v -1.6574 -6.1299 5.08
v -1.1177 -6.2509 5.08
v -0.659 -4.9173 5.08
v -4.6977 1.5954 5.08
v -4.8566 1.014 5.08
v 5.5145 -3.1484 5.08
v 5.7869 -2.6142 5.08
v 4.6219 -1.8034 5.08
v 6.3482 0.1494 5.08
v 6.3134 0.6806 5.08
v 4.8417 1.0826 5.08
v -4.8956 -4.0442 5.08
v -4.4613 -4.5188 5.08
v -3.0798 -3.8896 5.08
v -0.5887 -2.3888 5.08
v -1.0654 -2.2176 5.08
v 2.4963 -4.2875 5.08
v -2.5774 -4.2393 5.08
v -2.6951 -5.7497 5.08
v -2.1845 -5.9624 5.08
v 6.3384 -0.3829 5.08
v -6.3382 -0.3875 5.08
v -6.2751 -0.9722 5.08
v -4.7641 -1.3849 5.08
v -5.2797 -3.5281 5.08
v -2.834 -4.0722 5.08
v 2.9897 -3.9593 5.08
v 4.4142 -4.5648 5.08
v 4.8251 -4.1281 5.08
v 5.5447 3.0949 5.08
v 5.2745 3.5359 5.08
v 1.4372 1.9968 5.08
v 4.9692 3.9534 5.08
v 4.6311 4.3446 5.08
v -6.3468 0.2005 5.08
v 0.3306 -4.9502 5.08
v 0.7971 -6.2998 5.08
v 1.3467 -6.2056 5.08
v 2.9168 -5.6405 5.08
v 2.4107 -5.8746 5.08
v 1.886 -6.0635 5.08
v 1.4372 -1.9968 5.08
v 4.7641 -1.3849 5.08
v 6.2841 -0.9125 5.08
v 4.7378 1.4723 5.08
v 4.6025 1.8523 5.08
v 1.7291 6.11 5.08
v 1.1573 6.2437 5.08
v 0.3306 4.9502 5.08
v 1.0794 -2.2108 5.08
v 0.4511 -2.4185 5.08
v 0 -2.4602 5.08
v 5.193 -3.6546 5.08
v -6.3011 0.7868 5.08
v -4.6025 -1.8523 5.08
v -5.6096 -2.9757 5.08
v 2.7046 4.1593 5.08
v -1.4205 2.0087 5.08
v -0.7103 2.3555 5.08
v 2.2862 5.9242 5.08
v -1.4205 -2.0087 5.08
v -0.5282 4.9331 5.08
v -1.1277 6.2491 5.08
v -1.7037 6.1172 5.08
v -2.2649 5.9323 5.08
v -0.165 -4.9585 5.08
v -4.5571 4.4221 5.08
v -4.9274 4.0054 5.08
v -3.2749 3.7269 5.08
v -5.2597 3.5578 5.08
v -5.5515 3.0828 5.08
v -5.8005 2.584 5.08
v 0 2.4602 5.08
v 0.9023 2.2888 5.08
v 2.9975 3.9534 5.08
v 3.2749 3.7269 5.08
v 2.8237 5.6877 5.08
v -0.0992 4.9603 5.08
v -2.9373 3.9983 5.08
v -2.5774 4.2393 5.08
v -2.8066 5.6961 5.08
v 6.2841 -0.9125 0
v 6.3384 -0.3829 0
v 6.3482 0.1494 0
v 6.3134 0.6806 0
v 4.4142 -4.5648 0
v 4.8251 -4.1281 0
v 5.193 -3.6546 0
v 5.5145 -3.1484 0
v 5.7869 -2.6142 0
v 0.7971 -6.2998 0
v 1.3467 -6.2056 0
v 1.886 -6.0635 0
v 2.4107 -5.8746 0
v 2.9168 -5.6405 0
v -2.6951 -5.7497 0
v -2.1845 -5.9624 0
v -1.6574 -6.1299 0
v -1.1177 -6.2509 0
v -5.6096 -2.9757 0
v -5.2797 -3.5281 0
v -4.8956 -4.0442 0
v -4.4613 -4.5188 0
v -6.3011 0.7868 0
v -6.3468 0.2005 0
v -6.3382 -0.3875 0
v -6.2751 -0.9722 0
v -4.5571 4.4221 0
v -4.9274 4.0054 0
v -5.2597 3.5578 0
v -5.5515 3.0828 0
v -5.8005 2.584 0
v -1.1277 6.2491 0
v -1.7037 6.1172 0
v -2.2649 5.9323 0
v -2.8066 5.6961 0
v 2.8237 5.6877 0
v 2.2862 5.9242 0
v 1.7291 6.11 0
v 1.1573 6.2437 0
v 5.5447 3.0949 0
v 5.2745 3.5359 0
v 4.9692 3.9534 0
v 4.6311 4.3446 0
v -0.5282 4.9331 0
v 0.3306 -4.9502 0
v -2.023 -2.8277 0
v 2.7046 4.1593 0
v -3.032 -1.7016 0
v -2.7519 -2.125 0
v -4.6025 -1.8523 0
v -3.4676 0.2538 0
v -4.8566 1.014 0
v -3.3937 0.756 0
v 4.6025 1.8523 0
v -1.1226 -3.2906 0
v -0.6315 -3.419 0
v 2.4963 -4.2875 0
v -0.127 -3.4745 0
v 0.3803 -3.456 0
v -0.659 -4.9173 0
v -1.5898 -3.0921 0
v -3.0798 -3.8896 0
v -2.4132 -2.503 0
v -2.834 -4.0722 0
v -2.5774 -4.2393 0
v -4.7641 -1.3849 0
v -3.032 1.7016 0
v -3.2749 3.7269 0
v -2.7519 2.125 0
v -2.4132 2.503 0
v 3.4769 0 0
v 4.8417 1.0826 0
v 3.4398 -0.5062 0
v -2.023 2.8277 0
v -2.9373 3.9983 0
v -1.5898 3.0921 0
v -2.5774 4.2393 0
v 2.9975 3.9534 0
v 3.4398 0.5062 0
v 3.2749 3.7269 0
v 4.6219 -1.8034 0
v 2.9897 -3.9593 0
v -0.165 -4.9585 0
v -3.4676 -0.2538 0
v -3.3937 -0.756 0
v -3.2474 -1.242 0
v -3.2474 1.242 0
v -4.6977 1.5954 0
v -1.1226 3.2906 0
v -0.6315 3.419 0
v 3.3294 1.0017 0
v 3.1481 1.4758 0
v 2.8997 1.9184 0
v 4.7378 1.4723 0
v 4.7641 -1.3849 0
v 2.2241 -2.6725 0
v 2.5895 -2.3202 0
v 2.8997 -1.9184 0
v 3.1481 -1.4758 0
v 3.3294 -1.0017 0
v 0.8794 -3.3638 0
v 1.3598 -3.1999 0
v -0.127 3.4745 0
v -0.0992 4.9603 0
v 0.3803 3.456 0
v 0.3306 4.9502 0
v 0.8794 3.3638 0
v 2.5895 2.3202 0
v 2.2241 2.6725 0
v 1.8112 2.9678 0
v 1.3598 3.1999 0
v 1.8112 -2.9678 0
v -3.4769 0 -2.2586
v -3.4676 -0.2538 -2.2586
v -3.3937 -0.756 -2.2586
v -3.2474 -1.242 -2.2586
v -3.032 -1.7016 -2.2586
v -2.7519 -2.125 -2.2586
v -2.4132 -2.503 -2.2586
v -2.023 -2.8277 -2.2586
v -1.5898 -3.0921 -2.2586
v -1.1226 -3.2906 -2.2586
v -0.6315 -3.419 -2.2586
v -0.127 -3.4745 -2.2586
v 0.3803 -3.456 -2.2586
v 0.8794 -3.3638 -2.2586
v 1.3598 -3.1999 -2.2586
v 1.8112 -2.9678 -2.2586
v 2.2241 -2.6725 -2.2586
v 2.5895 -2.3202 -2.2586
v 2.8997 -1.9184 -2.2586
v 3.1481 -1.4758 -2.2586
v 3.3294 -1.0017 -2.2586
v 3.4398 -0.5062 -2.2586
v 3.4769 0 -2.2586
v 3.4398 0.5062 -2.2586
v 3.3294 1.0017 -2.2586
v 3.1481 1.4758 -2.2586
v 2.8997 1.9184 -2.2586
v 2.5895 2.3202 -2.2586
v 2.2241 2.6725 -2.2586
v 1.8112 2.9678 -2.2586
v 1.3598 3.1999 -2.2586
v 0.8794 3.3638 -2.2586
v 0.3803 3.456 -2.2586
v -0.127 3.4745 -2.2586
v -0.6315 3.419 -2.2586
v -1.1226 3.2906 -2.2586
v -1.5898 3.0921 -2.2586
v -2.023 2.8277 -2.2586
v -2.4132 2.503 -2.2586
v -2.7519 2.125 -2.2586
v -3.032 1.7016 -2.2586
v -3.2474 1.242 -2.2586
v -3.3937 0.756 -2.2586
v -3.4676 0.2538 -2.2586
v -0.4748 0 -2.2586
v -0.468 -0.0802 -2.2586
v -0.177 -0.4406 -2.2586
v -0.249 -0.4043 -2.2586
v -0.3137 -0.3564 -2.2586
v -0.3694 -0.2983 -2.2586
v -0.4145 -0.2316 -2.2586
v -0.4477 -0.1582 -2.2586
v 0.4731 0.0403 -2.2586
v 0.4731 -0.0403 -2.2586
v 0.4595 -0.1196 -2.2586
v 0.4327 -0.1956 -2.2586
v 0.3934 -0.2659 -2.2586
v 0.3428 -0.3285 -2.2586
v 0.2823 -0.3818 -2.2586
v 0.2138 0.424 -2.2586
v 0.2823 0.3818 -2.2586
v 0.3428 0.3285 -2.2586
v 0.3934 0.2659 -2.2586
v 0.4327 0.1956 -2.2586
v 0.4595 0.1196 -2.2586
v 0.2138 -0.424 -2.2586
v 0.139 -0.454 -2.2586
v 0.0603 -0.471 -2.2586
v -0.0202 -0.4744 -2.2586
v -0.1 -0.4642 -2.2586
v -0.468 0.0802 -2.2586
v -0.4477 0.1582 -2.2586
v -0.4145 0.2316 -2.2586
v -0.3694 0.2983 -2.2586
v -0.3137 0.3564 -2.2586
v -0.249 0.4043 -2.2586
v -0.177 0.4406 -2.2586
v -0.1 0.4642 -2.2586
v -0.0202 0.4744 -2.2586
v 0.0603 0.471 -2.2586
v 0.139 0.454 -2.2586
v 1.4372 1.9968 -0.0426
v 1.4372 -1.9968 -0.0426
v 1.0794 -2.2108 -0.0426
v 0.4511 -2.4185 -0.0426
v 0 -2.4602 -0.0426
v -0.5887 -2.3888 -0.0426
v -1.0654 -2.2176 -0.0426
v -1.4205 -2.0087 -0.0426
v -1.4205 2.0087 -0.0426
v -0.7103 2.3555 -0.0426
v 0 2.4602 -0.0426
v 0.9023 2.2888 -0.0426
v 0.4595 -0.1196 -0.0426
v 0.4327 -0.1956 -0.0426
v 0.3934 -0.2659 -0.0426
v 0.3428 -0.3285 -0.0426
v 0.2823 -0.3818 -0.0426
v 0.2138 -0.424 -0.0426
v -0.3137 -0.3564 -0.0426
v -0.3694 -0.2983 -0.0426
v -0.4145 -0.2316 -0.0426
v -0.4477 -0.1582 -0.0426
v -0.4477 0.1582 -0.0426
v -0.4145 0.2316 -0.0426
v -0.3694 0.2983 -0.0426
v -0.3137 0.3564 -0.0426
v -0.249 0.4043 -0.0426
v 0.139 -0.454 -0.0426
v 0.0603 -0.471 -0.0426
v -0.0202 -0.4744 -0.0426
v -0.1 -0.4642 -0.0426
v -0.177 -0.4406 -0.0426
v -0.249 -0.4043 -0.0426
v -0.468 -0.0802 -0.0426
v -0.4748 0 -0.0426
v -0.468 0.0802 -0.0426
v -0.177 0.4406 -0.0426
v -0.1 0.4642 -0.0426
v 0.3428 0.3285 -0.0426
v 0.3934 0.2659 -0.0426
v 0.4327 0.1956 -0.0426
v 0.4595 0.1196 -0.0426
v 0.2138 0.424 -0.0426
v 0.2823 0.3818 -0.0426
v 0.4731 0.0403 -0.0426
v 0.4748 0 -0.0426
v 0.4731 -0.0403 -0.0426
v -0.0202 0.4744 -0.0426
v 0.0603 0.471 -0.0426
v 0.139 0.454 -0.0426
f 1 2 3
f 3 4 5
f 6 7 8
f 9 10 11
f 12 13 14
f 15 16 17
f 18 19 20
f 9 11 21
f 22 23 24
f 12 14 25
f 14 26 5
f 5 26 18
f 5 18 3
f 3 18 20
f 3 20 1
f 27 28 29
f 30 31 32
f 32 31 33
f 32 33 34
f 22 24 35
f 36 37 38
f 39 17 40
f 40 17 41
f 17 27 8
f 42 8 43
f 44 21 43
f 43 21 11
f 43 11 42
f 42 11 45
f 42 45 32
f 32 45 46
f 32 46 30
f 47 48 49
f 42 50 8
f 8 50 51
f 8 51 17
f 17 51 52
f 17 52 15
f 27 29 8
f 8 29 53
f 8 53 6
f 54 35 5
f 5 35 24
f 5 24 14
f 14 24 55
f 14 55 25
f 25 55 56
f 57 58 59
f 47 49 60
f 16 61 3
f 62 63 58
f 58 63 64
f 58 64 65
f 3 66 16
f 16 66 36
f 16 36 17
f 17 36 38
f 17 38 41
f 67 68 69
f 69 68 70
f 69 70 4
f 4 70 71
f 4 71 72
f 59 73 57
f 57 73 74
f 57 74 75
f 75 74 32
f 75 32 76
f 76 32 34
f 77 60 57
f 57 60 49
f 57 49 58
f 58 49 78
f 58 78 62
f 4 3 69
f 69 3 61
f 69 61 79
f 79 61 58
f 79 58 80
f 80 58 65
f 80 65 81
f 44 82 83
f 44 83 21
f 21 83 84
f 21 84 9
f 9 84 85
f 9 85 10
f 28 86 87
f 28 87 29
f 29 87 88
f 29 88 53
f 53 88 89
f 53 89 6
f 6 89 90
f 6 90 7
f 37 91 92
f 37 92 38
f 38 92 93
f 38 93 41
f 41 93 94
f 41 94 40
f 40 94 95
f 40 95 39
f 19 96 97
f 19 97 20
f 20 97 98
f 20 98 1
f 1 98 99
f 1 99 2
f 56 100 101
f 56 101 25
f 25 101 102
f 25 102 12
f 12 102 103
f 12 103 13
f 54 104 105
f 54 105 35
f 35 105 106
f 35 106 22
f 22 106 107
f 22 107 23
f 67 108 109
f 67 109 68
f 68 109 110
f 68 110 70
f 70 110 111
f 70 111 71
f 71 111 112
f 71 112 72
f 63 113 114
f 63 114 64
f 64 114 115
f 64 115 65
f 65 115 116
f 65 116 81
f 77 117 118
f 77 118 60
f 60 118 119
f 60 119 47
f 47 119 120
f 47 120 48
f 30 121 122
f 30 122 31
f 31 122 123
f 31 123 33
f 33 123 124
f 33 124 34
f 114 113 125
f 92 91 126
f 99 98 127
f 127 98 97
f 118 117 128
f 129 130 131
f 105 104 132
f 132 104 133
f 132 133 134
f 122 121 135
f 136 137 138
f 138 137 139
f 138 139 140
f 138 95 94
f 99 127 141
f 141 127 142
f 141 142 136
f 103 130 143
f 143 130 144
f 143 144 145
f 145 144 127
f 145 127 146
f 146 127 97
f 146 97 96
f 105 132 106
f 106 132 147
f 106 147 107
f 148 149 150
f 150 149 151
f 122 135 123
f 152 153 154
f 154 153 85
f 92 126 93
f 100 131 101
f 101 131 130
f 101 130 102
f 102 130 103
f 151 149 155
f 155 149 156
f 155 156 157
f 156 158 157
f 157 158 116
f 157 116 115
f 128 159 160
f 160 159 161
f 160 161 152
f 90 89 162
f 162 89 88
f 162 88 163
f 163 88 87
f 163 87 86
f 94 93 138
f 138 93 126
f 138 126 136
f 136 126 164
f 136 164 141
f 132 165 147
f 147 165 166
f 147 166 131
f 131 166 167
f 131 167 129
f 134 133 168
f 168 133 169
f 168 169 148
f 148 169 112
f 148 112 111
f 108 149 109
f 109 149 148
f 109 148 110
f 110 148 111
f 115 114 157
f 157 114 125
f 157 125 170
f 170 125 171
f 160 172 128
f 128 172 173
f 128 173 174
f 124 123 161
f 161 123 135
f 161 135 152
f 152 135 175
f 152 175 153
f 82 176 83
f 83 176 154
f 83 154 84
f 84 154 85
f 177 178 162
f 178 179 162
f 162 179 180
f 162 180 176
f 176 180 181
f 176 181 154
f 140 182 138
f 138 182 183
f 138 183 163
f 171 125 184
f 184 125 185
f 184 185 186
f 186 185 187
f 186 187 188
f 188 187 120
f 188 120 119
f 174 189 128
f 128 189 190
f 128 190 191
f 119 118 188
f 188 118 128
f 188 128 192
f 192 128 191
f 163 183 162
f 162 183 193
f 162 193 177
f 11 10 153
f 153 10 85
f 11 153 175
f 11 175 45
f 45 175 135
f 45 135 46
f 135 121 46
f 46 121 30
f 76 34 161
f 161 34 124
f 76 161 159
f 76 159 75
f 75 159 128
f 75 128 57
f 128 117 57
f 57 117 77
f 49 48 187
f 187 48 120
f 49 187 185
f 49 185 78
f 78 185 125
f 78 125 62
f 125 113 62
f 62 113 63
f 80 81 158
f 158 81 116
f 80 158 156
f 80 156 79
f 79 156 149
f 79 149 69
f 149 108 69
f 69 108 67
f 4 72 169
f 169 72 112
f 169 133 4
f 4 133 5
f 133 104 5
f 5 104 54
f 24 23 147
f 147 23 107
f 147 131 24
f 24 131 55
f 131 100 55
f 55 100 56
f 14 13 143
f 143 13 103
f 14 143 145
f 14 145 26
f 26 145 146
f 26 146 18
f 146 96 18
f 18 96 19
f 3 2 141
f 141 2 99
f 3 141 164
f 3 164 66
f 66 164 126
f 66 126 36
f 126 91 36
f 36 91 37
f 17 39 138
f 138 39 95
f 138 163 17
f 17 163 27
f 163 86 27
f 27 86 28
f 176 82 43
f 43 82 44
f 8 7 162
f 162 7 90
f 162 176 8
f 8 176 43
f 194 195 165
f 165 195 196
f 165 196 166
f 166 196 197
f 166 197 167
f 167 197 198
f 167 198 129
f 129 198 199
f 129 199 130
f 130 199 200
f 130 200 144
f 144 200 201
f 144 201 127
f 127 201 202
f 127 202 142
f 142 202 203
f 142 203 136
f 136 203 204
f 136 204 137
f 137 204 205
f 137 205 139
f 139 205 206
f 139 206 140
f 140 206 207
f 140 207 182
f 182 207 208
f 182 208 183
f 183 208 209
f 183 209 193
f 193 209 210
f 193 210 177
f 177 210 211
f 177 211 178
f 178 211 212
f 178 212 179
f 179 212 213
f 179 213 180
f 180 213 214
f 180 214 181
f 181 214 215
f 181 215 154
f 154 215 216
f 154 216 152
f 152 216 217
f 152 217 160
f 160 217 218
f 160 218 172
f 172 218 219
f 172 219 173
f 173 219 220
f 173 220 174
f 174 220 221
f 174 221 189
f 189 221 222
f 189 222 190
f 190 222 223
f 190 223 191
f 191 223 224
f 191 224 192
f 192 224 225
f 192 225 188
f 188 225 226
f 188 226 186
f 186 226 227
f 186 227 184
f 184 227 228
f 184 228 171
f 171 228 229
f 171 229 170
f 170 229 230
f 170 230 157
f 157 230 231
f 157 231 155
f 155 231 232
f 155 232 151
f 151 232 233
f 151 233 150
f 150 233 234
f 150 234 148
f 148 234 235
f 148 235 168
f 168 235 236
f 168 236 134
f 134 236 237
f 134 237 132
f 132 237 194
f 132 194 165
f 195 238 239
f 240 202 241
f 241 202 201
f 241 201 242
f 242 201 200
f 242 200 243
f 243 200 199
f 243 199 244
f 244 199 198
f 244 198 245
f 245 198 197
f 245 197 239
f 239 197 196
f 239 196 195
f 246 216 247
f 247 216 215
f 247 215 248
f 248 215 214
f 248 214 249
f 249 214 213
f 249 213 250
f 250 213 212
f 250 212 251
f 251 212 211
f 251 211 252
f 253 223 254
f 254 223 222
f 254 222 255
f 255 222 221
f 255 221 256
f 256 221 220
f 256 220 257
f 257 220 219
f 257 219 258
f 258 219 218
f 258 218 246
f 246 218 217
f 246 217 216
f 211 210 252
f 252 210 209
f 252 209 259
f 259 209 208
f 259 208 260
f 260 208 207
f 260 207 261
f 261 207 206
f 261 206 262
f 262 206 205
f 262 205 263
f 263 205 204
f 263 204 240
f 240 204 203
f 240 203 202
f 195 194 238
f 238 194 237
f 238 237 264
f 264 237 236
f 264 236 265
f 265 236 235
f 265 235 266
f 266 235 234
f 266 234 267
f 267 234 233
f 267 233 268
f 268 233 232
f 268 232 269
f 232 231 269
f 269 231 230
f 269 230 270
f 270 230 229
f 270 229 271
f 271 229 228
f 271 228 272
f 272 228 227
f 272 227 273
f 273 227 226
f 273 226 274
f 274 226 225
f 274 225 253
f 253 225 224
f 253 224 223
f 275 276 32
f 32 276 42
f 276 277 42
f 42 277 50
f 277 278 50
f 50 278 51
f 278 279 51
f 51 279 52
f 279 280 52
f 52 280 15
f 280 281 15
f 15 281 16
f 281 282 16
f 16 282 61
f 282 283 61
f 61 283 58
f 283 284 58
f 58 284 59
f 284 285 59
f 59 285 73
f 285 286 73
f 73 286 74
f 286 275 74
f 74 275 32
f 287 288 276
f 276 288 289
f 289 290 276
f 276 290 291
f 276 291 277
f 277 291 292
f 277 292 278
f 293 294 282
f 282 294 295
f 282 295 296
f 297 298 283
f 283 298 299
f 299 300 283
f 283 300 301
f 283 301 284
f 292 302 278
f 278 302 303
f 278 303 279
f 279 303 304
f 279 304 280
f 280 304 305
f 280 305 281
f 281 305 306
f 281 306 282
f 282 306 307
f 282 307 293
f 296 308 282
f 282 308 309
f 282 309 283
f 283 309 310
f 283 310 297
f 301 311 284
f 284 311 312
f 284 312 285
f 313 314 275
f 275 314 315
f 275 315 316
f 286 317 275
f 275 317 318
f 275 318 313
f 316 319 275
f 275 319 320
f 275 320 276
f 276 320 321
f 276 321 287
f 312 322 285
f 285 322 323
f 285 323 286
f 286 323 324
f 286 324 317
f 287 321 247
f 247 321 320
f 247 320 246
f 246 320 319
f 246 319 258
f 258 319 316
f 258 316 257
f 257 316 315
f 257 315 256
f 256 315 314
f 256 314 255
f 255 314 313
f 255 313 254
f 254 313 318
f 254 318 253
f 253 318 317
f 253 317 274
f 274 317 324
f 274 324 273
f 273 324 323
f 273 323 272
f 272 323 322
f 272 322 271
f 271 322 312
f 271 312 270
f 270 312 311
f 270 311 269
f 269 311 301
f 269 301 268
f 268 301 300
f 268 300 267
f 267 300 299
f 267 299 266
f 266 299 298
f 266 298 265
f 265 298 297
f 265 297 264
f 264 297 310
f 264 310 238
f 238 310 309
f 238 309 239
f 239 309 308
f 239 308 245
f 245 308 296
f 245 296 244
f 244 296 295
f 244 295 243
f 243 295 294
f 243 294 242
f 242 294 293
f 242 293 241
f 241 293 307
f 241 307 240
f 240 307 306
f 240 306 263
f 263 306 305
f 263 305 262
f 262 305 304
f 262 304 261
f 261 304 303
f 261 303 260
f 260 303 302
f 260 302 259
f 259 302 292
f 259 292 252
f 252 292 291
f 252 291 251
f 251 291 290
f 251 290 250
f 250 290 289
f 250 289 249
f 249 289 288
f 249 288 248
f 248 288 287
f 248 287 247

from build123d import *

# Parameters (mm, degrees)
SKETCH1_R           = 6.35
BOSS_EXTRUDE1_DEPTH = 5.08
SKETCH2_R           = 0.804650072
CUT_EXTRUDE1_DEPTH  = 5.08
CUT_EXTRUDE4_DEPTH  = 5.08
SKETCH7_R           = 3.476857069
BOSS_EXTRUDE3_DEPTH = 2.258601292
SKETCH10_R          = 0.804650072
CUT_EXTRUDE5_DEPTH  = 5.12259779
SKETCH11_R          = 0.474817283
CUT_EXTRUDE6_DEPTH  = 9.144


with BuildPart() as part:
    # Sketch1 → Boss-Extrude1 (new body)
    with BuildSketch(Plane.XY):
        Circle(SKETCH1_R)
    extrude(amount=BOSS_EXTRUDE1_DEPTH)

    # Sketch2 → Cut-Extrude1 (cut)
    with BuildSketch(Plane.XY.offset(5.08)):
        Circle(SKETCH2_R)
    extrude(amount=-CUT_EXTRUDE1_DEPTH, mode=Mode.SUBTRACT)

    # Sketch6 → Cut-Extrude4 (cut)
    with BuildSketch(Plane(origin=(0, 0, 0), x_dir=(-1, 0, 0), z_dir=(0, 0, -1))):
        with BuildLine():
            Line((-6.313419859, 0.680609785), (-4.841727293, 1.082552663))
            ThreePointArc((-4.841727293, 1.082552663), (-4.737782551, 1.472297507), (-4.602520026, 1.852310143))
            Line((-4.602520026, 1.852310143), (-5.544711841, 3.094942746))
            ThreePointArc((-5.544711841, 3.094942746), (-6.050708452, 1.926506484), (-6.313419859, 0.680609785))
        make_face()
        with BuildLine():
            ThreePointArc((-4.621895526, -1.803420416), (-4.697643554, -1.595740734), (-4.764064977, -1.384892901))
            Line((-4.764064977, -1.384892901), (-6.284089397, -0.912535181))
            ThreePointArc((-6.284089397, -0.912535181), (-6.095179755, -1.780809857), (-5.786915427, -2.614213043))
            Line((-5.786915427, -2.614213043), (-4.621895526, -1.803420416))
        make_face()
        with BuildLine():
            ThreePointArc((-2.49633596, -4.287487636), (-2.747933203, -4.130751331), (-2.989720929, -3.959269152))
            Line((-2.989720929, -3.959269152), (-4.414172057, -4.564820375))
            ThreePointArc((-4.414172057, -4.564820375), (-3.704724213, -5.157278207), (-2.916783485, -5.640467543))
            Line((-2.916783485, -5.640467543), (-2.49633596, -4.287487636))
        make_face()
        with BuildLine():
            ThreePointArc((0.658971441, -4.91731635), (0.164985262, -4.958530358), (-0.330647946, -4.950243972))
            Line((-0.330647946, -4.950243972), (-0.797062617, -6.299777074))
            ThreePointArc((-0.797062617, -6.299777074), (0.162157154, -6.347929194), (1.117667403, -6.250865506))
            Line((1.117667403, -6.250865506), (0.658971441, -4.91731635))
        make_face()
        with BuildLine():
            ThreePointArc((3.079848524, -3.889572794), (2.834017843, -4.072172186), (2.577390132, -4.23925743))
            Line((2.577390132, -4.23925743), (2.695058949, -5.74970932))
            ThreePointArc((2.695058949, -5.74970932), (3.630700167, -5.209656063), (4.461255519, -4.518816127))
            Line((4.461255519, -4.518816127), (3.079848524, -3.889572794))
        make_face()
        with BuildLine():
            ThreePointArc((4.764064977, -1.384892901), (4.689120213, -1.620615648), (4.602520026, -1.852310143))
            Line((4.602520026, -1.852310143), (5.609586886, -2.975741079))
            ThreePointArc((5.609586886, -2.975741079), (6.026210342, -2.001821398), (6.2751364, -0.972195025))
            Line((6.2751364, -0.972195025), (4.764064977, -1.384892901))
        make_face()
        with BuildLine():
            ThreePointArc((4.697742855, 1.595448377), (4.785985372, 1.307129477), (4.856550498, 1.013982598))
            Line((4.856550498, 1.013982598), (6.301072583, 0.786755552))
            ThreePointArc((6.301072583, 0.786755552), (6.117140529, 1.703846165), (5.800483524, 2.583968051))
            Line((5.800483524, 2.583968051), (4.697742855, 1.595448377))
        make_face()
        with BuildLine():
            Line((-4.631054346, 4.34463297), (-3.274854363, 3.726871658))
            ThreePointArc((-3.274854363, 3.726871658), (-2.997527533, 3.953362131), (-2.704587495, 4.159260744))
            Line((-2.704587495, 4.159260744), (-2.823654461, 5.68765993))
            ThreePointArc((-2.823654461, 5.68765993), (-3.787360718, 5.096900901), (-4.631054346, 4.34463297))
        make_face()
        with BuildLine():
            Line((-1.15729269, 6.243650665), (-0.330647946, 4.950243972))
            ThreePointArc((-0.330647946, 4.950243972), (0.099169547, 4.960283142), (0.528242314, 4.933072421))
            Line((0.528242314, 4.933072421), (1.127688946, 6.249065341))
            ThreePointArc((1.127688946, 6.249065341), (-0.015047428, 6.349982171), (-1.15729269, 6.243650665))
        make_face()
        with BuildLine():
            Line((2.80655769, 5.696115688), (2.577390132, 4.23925743))
            ThreePointArc((2.577390132, 4.23925743), (2.937316156, 3.998301796), (3.274854363, 3.726871658))
            Line((3.274854363, 3.726871658), (4.557114361, 4.422127169))
            ThreePointArc((4.557114361, 4.422127169), (3.736532912, 5.134279092), (2.80655769, 5.696115688))
        make_face()
    extrude(amount=-CUT_EXTRUDE4_DEPTH, mode=Mode.SUBTRACT)

    # Sketch7 → Boss-Extrude3 (add)
    with BuildSketch(Plane(origin=(0, 0, 0), x_dir=(-1, 0, 0), z_dir=(0, 0, -1))):
        Circle(SKETCH7_R)
    extrude(amount=BOSS_EXTRUDE3_DEPTH)

    # Sketch10 → Cut-Extrude5 (cut)
    with BuildSketch(Plane.XY.offset(5.08)):
        Circle(SKETCH10_R)
        Polygon((1.437219643, 0), (1.437219643, -1.996796237), (1.079397463, -2.210813568), (0.451137939, -2.418526426), (0, -2.460242979), (-0.588709584, -2.388768834), (-1.06538084, -2.217602124), (-1.420507786, -2.008719279), (-1.420507786, 0), (0, 0), align=None)
        with BuildLine():
            Line((-0.804650072, 0), (0, 0))
            Line((0, 0), (0.804650072, 0))
            ThreePointArc((0.804650072, 0), (0, 0.804650072), (-0.804650072, 0))
        make_face()
        with BuildLine():
            Line((0.804650072, 0), (0, 0))
            Line((0, 0), (-0.804650072, 0))
            ThreePointArc((-0.804650072, 0), (0, -0.804650072), (0.804650072, 0))
        make_face()
        Polygon((1.437219643, 1.996796237), (1.437219643, 0), (0, 0), (-1.420507786, 0), (-1.420507786, 2.008719279), (-0.710253893, 2.355490378), (0, 2.460242979), (0.902275879, 2.288819292), align=None)
    extrude(amount=-CUT_EXTRUDE5_DEPTH, mode=Mode.SUBTRACT)

    # Sketch11 → Cut-Extrude6 (cut)
    with BuildSketch(Plane(origin=(0, 0, -2.258601292), x_dir=(-1, 0, 0), z_dir=(0, 0, -1))):
        Circle(SKETCH11_R)
    extrude(amount=-CUT_EXTRUDE6_DEPTH, mode=Mode.SUBTRACT)


solid = part.part
